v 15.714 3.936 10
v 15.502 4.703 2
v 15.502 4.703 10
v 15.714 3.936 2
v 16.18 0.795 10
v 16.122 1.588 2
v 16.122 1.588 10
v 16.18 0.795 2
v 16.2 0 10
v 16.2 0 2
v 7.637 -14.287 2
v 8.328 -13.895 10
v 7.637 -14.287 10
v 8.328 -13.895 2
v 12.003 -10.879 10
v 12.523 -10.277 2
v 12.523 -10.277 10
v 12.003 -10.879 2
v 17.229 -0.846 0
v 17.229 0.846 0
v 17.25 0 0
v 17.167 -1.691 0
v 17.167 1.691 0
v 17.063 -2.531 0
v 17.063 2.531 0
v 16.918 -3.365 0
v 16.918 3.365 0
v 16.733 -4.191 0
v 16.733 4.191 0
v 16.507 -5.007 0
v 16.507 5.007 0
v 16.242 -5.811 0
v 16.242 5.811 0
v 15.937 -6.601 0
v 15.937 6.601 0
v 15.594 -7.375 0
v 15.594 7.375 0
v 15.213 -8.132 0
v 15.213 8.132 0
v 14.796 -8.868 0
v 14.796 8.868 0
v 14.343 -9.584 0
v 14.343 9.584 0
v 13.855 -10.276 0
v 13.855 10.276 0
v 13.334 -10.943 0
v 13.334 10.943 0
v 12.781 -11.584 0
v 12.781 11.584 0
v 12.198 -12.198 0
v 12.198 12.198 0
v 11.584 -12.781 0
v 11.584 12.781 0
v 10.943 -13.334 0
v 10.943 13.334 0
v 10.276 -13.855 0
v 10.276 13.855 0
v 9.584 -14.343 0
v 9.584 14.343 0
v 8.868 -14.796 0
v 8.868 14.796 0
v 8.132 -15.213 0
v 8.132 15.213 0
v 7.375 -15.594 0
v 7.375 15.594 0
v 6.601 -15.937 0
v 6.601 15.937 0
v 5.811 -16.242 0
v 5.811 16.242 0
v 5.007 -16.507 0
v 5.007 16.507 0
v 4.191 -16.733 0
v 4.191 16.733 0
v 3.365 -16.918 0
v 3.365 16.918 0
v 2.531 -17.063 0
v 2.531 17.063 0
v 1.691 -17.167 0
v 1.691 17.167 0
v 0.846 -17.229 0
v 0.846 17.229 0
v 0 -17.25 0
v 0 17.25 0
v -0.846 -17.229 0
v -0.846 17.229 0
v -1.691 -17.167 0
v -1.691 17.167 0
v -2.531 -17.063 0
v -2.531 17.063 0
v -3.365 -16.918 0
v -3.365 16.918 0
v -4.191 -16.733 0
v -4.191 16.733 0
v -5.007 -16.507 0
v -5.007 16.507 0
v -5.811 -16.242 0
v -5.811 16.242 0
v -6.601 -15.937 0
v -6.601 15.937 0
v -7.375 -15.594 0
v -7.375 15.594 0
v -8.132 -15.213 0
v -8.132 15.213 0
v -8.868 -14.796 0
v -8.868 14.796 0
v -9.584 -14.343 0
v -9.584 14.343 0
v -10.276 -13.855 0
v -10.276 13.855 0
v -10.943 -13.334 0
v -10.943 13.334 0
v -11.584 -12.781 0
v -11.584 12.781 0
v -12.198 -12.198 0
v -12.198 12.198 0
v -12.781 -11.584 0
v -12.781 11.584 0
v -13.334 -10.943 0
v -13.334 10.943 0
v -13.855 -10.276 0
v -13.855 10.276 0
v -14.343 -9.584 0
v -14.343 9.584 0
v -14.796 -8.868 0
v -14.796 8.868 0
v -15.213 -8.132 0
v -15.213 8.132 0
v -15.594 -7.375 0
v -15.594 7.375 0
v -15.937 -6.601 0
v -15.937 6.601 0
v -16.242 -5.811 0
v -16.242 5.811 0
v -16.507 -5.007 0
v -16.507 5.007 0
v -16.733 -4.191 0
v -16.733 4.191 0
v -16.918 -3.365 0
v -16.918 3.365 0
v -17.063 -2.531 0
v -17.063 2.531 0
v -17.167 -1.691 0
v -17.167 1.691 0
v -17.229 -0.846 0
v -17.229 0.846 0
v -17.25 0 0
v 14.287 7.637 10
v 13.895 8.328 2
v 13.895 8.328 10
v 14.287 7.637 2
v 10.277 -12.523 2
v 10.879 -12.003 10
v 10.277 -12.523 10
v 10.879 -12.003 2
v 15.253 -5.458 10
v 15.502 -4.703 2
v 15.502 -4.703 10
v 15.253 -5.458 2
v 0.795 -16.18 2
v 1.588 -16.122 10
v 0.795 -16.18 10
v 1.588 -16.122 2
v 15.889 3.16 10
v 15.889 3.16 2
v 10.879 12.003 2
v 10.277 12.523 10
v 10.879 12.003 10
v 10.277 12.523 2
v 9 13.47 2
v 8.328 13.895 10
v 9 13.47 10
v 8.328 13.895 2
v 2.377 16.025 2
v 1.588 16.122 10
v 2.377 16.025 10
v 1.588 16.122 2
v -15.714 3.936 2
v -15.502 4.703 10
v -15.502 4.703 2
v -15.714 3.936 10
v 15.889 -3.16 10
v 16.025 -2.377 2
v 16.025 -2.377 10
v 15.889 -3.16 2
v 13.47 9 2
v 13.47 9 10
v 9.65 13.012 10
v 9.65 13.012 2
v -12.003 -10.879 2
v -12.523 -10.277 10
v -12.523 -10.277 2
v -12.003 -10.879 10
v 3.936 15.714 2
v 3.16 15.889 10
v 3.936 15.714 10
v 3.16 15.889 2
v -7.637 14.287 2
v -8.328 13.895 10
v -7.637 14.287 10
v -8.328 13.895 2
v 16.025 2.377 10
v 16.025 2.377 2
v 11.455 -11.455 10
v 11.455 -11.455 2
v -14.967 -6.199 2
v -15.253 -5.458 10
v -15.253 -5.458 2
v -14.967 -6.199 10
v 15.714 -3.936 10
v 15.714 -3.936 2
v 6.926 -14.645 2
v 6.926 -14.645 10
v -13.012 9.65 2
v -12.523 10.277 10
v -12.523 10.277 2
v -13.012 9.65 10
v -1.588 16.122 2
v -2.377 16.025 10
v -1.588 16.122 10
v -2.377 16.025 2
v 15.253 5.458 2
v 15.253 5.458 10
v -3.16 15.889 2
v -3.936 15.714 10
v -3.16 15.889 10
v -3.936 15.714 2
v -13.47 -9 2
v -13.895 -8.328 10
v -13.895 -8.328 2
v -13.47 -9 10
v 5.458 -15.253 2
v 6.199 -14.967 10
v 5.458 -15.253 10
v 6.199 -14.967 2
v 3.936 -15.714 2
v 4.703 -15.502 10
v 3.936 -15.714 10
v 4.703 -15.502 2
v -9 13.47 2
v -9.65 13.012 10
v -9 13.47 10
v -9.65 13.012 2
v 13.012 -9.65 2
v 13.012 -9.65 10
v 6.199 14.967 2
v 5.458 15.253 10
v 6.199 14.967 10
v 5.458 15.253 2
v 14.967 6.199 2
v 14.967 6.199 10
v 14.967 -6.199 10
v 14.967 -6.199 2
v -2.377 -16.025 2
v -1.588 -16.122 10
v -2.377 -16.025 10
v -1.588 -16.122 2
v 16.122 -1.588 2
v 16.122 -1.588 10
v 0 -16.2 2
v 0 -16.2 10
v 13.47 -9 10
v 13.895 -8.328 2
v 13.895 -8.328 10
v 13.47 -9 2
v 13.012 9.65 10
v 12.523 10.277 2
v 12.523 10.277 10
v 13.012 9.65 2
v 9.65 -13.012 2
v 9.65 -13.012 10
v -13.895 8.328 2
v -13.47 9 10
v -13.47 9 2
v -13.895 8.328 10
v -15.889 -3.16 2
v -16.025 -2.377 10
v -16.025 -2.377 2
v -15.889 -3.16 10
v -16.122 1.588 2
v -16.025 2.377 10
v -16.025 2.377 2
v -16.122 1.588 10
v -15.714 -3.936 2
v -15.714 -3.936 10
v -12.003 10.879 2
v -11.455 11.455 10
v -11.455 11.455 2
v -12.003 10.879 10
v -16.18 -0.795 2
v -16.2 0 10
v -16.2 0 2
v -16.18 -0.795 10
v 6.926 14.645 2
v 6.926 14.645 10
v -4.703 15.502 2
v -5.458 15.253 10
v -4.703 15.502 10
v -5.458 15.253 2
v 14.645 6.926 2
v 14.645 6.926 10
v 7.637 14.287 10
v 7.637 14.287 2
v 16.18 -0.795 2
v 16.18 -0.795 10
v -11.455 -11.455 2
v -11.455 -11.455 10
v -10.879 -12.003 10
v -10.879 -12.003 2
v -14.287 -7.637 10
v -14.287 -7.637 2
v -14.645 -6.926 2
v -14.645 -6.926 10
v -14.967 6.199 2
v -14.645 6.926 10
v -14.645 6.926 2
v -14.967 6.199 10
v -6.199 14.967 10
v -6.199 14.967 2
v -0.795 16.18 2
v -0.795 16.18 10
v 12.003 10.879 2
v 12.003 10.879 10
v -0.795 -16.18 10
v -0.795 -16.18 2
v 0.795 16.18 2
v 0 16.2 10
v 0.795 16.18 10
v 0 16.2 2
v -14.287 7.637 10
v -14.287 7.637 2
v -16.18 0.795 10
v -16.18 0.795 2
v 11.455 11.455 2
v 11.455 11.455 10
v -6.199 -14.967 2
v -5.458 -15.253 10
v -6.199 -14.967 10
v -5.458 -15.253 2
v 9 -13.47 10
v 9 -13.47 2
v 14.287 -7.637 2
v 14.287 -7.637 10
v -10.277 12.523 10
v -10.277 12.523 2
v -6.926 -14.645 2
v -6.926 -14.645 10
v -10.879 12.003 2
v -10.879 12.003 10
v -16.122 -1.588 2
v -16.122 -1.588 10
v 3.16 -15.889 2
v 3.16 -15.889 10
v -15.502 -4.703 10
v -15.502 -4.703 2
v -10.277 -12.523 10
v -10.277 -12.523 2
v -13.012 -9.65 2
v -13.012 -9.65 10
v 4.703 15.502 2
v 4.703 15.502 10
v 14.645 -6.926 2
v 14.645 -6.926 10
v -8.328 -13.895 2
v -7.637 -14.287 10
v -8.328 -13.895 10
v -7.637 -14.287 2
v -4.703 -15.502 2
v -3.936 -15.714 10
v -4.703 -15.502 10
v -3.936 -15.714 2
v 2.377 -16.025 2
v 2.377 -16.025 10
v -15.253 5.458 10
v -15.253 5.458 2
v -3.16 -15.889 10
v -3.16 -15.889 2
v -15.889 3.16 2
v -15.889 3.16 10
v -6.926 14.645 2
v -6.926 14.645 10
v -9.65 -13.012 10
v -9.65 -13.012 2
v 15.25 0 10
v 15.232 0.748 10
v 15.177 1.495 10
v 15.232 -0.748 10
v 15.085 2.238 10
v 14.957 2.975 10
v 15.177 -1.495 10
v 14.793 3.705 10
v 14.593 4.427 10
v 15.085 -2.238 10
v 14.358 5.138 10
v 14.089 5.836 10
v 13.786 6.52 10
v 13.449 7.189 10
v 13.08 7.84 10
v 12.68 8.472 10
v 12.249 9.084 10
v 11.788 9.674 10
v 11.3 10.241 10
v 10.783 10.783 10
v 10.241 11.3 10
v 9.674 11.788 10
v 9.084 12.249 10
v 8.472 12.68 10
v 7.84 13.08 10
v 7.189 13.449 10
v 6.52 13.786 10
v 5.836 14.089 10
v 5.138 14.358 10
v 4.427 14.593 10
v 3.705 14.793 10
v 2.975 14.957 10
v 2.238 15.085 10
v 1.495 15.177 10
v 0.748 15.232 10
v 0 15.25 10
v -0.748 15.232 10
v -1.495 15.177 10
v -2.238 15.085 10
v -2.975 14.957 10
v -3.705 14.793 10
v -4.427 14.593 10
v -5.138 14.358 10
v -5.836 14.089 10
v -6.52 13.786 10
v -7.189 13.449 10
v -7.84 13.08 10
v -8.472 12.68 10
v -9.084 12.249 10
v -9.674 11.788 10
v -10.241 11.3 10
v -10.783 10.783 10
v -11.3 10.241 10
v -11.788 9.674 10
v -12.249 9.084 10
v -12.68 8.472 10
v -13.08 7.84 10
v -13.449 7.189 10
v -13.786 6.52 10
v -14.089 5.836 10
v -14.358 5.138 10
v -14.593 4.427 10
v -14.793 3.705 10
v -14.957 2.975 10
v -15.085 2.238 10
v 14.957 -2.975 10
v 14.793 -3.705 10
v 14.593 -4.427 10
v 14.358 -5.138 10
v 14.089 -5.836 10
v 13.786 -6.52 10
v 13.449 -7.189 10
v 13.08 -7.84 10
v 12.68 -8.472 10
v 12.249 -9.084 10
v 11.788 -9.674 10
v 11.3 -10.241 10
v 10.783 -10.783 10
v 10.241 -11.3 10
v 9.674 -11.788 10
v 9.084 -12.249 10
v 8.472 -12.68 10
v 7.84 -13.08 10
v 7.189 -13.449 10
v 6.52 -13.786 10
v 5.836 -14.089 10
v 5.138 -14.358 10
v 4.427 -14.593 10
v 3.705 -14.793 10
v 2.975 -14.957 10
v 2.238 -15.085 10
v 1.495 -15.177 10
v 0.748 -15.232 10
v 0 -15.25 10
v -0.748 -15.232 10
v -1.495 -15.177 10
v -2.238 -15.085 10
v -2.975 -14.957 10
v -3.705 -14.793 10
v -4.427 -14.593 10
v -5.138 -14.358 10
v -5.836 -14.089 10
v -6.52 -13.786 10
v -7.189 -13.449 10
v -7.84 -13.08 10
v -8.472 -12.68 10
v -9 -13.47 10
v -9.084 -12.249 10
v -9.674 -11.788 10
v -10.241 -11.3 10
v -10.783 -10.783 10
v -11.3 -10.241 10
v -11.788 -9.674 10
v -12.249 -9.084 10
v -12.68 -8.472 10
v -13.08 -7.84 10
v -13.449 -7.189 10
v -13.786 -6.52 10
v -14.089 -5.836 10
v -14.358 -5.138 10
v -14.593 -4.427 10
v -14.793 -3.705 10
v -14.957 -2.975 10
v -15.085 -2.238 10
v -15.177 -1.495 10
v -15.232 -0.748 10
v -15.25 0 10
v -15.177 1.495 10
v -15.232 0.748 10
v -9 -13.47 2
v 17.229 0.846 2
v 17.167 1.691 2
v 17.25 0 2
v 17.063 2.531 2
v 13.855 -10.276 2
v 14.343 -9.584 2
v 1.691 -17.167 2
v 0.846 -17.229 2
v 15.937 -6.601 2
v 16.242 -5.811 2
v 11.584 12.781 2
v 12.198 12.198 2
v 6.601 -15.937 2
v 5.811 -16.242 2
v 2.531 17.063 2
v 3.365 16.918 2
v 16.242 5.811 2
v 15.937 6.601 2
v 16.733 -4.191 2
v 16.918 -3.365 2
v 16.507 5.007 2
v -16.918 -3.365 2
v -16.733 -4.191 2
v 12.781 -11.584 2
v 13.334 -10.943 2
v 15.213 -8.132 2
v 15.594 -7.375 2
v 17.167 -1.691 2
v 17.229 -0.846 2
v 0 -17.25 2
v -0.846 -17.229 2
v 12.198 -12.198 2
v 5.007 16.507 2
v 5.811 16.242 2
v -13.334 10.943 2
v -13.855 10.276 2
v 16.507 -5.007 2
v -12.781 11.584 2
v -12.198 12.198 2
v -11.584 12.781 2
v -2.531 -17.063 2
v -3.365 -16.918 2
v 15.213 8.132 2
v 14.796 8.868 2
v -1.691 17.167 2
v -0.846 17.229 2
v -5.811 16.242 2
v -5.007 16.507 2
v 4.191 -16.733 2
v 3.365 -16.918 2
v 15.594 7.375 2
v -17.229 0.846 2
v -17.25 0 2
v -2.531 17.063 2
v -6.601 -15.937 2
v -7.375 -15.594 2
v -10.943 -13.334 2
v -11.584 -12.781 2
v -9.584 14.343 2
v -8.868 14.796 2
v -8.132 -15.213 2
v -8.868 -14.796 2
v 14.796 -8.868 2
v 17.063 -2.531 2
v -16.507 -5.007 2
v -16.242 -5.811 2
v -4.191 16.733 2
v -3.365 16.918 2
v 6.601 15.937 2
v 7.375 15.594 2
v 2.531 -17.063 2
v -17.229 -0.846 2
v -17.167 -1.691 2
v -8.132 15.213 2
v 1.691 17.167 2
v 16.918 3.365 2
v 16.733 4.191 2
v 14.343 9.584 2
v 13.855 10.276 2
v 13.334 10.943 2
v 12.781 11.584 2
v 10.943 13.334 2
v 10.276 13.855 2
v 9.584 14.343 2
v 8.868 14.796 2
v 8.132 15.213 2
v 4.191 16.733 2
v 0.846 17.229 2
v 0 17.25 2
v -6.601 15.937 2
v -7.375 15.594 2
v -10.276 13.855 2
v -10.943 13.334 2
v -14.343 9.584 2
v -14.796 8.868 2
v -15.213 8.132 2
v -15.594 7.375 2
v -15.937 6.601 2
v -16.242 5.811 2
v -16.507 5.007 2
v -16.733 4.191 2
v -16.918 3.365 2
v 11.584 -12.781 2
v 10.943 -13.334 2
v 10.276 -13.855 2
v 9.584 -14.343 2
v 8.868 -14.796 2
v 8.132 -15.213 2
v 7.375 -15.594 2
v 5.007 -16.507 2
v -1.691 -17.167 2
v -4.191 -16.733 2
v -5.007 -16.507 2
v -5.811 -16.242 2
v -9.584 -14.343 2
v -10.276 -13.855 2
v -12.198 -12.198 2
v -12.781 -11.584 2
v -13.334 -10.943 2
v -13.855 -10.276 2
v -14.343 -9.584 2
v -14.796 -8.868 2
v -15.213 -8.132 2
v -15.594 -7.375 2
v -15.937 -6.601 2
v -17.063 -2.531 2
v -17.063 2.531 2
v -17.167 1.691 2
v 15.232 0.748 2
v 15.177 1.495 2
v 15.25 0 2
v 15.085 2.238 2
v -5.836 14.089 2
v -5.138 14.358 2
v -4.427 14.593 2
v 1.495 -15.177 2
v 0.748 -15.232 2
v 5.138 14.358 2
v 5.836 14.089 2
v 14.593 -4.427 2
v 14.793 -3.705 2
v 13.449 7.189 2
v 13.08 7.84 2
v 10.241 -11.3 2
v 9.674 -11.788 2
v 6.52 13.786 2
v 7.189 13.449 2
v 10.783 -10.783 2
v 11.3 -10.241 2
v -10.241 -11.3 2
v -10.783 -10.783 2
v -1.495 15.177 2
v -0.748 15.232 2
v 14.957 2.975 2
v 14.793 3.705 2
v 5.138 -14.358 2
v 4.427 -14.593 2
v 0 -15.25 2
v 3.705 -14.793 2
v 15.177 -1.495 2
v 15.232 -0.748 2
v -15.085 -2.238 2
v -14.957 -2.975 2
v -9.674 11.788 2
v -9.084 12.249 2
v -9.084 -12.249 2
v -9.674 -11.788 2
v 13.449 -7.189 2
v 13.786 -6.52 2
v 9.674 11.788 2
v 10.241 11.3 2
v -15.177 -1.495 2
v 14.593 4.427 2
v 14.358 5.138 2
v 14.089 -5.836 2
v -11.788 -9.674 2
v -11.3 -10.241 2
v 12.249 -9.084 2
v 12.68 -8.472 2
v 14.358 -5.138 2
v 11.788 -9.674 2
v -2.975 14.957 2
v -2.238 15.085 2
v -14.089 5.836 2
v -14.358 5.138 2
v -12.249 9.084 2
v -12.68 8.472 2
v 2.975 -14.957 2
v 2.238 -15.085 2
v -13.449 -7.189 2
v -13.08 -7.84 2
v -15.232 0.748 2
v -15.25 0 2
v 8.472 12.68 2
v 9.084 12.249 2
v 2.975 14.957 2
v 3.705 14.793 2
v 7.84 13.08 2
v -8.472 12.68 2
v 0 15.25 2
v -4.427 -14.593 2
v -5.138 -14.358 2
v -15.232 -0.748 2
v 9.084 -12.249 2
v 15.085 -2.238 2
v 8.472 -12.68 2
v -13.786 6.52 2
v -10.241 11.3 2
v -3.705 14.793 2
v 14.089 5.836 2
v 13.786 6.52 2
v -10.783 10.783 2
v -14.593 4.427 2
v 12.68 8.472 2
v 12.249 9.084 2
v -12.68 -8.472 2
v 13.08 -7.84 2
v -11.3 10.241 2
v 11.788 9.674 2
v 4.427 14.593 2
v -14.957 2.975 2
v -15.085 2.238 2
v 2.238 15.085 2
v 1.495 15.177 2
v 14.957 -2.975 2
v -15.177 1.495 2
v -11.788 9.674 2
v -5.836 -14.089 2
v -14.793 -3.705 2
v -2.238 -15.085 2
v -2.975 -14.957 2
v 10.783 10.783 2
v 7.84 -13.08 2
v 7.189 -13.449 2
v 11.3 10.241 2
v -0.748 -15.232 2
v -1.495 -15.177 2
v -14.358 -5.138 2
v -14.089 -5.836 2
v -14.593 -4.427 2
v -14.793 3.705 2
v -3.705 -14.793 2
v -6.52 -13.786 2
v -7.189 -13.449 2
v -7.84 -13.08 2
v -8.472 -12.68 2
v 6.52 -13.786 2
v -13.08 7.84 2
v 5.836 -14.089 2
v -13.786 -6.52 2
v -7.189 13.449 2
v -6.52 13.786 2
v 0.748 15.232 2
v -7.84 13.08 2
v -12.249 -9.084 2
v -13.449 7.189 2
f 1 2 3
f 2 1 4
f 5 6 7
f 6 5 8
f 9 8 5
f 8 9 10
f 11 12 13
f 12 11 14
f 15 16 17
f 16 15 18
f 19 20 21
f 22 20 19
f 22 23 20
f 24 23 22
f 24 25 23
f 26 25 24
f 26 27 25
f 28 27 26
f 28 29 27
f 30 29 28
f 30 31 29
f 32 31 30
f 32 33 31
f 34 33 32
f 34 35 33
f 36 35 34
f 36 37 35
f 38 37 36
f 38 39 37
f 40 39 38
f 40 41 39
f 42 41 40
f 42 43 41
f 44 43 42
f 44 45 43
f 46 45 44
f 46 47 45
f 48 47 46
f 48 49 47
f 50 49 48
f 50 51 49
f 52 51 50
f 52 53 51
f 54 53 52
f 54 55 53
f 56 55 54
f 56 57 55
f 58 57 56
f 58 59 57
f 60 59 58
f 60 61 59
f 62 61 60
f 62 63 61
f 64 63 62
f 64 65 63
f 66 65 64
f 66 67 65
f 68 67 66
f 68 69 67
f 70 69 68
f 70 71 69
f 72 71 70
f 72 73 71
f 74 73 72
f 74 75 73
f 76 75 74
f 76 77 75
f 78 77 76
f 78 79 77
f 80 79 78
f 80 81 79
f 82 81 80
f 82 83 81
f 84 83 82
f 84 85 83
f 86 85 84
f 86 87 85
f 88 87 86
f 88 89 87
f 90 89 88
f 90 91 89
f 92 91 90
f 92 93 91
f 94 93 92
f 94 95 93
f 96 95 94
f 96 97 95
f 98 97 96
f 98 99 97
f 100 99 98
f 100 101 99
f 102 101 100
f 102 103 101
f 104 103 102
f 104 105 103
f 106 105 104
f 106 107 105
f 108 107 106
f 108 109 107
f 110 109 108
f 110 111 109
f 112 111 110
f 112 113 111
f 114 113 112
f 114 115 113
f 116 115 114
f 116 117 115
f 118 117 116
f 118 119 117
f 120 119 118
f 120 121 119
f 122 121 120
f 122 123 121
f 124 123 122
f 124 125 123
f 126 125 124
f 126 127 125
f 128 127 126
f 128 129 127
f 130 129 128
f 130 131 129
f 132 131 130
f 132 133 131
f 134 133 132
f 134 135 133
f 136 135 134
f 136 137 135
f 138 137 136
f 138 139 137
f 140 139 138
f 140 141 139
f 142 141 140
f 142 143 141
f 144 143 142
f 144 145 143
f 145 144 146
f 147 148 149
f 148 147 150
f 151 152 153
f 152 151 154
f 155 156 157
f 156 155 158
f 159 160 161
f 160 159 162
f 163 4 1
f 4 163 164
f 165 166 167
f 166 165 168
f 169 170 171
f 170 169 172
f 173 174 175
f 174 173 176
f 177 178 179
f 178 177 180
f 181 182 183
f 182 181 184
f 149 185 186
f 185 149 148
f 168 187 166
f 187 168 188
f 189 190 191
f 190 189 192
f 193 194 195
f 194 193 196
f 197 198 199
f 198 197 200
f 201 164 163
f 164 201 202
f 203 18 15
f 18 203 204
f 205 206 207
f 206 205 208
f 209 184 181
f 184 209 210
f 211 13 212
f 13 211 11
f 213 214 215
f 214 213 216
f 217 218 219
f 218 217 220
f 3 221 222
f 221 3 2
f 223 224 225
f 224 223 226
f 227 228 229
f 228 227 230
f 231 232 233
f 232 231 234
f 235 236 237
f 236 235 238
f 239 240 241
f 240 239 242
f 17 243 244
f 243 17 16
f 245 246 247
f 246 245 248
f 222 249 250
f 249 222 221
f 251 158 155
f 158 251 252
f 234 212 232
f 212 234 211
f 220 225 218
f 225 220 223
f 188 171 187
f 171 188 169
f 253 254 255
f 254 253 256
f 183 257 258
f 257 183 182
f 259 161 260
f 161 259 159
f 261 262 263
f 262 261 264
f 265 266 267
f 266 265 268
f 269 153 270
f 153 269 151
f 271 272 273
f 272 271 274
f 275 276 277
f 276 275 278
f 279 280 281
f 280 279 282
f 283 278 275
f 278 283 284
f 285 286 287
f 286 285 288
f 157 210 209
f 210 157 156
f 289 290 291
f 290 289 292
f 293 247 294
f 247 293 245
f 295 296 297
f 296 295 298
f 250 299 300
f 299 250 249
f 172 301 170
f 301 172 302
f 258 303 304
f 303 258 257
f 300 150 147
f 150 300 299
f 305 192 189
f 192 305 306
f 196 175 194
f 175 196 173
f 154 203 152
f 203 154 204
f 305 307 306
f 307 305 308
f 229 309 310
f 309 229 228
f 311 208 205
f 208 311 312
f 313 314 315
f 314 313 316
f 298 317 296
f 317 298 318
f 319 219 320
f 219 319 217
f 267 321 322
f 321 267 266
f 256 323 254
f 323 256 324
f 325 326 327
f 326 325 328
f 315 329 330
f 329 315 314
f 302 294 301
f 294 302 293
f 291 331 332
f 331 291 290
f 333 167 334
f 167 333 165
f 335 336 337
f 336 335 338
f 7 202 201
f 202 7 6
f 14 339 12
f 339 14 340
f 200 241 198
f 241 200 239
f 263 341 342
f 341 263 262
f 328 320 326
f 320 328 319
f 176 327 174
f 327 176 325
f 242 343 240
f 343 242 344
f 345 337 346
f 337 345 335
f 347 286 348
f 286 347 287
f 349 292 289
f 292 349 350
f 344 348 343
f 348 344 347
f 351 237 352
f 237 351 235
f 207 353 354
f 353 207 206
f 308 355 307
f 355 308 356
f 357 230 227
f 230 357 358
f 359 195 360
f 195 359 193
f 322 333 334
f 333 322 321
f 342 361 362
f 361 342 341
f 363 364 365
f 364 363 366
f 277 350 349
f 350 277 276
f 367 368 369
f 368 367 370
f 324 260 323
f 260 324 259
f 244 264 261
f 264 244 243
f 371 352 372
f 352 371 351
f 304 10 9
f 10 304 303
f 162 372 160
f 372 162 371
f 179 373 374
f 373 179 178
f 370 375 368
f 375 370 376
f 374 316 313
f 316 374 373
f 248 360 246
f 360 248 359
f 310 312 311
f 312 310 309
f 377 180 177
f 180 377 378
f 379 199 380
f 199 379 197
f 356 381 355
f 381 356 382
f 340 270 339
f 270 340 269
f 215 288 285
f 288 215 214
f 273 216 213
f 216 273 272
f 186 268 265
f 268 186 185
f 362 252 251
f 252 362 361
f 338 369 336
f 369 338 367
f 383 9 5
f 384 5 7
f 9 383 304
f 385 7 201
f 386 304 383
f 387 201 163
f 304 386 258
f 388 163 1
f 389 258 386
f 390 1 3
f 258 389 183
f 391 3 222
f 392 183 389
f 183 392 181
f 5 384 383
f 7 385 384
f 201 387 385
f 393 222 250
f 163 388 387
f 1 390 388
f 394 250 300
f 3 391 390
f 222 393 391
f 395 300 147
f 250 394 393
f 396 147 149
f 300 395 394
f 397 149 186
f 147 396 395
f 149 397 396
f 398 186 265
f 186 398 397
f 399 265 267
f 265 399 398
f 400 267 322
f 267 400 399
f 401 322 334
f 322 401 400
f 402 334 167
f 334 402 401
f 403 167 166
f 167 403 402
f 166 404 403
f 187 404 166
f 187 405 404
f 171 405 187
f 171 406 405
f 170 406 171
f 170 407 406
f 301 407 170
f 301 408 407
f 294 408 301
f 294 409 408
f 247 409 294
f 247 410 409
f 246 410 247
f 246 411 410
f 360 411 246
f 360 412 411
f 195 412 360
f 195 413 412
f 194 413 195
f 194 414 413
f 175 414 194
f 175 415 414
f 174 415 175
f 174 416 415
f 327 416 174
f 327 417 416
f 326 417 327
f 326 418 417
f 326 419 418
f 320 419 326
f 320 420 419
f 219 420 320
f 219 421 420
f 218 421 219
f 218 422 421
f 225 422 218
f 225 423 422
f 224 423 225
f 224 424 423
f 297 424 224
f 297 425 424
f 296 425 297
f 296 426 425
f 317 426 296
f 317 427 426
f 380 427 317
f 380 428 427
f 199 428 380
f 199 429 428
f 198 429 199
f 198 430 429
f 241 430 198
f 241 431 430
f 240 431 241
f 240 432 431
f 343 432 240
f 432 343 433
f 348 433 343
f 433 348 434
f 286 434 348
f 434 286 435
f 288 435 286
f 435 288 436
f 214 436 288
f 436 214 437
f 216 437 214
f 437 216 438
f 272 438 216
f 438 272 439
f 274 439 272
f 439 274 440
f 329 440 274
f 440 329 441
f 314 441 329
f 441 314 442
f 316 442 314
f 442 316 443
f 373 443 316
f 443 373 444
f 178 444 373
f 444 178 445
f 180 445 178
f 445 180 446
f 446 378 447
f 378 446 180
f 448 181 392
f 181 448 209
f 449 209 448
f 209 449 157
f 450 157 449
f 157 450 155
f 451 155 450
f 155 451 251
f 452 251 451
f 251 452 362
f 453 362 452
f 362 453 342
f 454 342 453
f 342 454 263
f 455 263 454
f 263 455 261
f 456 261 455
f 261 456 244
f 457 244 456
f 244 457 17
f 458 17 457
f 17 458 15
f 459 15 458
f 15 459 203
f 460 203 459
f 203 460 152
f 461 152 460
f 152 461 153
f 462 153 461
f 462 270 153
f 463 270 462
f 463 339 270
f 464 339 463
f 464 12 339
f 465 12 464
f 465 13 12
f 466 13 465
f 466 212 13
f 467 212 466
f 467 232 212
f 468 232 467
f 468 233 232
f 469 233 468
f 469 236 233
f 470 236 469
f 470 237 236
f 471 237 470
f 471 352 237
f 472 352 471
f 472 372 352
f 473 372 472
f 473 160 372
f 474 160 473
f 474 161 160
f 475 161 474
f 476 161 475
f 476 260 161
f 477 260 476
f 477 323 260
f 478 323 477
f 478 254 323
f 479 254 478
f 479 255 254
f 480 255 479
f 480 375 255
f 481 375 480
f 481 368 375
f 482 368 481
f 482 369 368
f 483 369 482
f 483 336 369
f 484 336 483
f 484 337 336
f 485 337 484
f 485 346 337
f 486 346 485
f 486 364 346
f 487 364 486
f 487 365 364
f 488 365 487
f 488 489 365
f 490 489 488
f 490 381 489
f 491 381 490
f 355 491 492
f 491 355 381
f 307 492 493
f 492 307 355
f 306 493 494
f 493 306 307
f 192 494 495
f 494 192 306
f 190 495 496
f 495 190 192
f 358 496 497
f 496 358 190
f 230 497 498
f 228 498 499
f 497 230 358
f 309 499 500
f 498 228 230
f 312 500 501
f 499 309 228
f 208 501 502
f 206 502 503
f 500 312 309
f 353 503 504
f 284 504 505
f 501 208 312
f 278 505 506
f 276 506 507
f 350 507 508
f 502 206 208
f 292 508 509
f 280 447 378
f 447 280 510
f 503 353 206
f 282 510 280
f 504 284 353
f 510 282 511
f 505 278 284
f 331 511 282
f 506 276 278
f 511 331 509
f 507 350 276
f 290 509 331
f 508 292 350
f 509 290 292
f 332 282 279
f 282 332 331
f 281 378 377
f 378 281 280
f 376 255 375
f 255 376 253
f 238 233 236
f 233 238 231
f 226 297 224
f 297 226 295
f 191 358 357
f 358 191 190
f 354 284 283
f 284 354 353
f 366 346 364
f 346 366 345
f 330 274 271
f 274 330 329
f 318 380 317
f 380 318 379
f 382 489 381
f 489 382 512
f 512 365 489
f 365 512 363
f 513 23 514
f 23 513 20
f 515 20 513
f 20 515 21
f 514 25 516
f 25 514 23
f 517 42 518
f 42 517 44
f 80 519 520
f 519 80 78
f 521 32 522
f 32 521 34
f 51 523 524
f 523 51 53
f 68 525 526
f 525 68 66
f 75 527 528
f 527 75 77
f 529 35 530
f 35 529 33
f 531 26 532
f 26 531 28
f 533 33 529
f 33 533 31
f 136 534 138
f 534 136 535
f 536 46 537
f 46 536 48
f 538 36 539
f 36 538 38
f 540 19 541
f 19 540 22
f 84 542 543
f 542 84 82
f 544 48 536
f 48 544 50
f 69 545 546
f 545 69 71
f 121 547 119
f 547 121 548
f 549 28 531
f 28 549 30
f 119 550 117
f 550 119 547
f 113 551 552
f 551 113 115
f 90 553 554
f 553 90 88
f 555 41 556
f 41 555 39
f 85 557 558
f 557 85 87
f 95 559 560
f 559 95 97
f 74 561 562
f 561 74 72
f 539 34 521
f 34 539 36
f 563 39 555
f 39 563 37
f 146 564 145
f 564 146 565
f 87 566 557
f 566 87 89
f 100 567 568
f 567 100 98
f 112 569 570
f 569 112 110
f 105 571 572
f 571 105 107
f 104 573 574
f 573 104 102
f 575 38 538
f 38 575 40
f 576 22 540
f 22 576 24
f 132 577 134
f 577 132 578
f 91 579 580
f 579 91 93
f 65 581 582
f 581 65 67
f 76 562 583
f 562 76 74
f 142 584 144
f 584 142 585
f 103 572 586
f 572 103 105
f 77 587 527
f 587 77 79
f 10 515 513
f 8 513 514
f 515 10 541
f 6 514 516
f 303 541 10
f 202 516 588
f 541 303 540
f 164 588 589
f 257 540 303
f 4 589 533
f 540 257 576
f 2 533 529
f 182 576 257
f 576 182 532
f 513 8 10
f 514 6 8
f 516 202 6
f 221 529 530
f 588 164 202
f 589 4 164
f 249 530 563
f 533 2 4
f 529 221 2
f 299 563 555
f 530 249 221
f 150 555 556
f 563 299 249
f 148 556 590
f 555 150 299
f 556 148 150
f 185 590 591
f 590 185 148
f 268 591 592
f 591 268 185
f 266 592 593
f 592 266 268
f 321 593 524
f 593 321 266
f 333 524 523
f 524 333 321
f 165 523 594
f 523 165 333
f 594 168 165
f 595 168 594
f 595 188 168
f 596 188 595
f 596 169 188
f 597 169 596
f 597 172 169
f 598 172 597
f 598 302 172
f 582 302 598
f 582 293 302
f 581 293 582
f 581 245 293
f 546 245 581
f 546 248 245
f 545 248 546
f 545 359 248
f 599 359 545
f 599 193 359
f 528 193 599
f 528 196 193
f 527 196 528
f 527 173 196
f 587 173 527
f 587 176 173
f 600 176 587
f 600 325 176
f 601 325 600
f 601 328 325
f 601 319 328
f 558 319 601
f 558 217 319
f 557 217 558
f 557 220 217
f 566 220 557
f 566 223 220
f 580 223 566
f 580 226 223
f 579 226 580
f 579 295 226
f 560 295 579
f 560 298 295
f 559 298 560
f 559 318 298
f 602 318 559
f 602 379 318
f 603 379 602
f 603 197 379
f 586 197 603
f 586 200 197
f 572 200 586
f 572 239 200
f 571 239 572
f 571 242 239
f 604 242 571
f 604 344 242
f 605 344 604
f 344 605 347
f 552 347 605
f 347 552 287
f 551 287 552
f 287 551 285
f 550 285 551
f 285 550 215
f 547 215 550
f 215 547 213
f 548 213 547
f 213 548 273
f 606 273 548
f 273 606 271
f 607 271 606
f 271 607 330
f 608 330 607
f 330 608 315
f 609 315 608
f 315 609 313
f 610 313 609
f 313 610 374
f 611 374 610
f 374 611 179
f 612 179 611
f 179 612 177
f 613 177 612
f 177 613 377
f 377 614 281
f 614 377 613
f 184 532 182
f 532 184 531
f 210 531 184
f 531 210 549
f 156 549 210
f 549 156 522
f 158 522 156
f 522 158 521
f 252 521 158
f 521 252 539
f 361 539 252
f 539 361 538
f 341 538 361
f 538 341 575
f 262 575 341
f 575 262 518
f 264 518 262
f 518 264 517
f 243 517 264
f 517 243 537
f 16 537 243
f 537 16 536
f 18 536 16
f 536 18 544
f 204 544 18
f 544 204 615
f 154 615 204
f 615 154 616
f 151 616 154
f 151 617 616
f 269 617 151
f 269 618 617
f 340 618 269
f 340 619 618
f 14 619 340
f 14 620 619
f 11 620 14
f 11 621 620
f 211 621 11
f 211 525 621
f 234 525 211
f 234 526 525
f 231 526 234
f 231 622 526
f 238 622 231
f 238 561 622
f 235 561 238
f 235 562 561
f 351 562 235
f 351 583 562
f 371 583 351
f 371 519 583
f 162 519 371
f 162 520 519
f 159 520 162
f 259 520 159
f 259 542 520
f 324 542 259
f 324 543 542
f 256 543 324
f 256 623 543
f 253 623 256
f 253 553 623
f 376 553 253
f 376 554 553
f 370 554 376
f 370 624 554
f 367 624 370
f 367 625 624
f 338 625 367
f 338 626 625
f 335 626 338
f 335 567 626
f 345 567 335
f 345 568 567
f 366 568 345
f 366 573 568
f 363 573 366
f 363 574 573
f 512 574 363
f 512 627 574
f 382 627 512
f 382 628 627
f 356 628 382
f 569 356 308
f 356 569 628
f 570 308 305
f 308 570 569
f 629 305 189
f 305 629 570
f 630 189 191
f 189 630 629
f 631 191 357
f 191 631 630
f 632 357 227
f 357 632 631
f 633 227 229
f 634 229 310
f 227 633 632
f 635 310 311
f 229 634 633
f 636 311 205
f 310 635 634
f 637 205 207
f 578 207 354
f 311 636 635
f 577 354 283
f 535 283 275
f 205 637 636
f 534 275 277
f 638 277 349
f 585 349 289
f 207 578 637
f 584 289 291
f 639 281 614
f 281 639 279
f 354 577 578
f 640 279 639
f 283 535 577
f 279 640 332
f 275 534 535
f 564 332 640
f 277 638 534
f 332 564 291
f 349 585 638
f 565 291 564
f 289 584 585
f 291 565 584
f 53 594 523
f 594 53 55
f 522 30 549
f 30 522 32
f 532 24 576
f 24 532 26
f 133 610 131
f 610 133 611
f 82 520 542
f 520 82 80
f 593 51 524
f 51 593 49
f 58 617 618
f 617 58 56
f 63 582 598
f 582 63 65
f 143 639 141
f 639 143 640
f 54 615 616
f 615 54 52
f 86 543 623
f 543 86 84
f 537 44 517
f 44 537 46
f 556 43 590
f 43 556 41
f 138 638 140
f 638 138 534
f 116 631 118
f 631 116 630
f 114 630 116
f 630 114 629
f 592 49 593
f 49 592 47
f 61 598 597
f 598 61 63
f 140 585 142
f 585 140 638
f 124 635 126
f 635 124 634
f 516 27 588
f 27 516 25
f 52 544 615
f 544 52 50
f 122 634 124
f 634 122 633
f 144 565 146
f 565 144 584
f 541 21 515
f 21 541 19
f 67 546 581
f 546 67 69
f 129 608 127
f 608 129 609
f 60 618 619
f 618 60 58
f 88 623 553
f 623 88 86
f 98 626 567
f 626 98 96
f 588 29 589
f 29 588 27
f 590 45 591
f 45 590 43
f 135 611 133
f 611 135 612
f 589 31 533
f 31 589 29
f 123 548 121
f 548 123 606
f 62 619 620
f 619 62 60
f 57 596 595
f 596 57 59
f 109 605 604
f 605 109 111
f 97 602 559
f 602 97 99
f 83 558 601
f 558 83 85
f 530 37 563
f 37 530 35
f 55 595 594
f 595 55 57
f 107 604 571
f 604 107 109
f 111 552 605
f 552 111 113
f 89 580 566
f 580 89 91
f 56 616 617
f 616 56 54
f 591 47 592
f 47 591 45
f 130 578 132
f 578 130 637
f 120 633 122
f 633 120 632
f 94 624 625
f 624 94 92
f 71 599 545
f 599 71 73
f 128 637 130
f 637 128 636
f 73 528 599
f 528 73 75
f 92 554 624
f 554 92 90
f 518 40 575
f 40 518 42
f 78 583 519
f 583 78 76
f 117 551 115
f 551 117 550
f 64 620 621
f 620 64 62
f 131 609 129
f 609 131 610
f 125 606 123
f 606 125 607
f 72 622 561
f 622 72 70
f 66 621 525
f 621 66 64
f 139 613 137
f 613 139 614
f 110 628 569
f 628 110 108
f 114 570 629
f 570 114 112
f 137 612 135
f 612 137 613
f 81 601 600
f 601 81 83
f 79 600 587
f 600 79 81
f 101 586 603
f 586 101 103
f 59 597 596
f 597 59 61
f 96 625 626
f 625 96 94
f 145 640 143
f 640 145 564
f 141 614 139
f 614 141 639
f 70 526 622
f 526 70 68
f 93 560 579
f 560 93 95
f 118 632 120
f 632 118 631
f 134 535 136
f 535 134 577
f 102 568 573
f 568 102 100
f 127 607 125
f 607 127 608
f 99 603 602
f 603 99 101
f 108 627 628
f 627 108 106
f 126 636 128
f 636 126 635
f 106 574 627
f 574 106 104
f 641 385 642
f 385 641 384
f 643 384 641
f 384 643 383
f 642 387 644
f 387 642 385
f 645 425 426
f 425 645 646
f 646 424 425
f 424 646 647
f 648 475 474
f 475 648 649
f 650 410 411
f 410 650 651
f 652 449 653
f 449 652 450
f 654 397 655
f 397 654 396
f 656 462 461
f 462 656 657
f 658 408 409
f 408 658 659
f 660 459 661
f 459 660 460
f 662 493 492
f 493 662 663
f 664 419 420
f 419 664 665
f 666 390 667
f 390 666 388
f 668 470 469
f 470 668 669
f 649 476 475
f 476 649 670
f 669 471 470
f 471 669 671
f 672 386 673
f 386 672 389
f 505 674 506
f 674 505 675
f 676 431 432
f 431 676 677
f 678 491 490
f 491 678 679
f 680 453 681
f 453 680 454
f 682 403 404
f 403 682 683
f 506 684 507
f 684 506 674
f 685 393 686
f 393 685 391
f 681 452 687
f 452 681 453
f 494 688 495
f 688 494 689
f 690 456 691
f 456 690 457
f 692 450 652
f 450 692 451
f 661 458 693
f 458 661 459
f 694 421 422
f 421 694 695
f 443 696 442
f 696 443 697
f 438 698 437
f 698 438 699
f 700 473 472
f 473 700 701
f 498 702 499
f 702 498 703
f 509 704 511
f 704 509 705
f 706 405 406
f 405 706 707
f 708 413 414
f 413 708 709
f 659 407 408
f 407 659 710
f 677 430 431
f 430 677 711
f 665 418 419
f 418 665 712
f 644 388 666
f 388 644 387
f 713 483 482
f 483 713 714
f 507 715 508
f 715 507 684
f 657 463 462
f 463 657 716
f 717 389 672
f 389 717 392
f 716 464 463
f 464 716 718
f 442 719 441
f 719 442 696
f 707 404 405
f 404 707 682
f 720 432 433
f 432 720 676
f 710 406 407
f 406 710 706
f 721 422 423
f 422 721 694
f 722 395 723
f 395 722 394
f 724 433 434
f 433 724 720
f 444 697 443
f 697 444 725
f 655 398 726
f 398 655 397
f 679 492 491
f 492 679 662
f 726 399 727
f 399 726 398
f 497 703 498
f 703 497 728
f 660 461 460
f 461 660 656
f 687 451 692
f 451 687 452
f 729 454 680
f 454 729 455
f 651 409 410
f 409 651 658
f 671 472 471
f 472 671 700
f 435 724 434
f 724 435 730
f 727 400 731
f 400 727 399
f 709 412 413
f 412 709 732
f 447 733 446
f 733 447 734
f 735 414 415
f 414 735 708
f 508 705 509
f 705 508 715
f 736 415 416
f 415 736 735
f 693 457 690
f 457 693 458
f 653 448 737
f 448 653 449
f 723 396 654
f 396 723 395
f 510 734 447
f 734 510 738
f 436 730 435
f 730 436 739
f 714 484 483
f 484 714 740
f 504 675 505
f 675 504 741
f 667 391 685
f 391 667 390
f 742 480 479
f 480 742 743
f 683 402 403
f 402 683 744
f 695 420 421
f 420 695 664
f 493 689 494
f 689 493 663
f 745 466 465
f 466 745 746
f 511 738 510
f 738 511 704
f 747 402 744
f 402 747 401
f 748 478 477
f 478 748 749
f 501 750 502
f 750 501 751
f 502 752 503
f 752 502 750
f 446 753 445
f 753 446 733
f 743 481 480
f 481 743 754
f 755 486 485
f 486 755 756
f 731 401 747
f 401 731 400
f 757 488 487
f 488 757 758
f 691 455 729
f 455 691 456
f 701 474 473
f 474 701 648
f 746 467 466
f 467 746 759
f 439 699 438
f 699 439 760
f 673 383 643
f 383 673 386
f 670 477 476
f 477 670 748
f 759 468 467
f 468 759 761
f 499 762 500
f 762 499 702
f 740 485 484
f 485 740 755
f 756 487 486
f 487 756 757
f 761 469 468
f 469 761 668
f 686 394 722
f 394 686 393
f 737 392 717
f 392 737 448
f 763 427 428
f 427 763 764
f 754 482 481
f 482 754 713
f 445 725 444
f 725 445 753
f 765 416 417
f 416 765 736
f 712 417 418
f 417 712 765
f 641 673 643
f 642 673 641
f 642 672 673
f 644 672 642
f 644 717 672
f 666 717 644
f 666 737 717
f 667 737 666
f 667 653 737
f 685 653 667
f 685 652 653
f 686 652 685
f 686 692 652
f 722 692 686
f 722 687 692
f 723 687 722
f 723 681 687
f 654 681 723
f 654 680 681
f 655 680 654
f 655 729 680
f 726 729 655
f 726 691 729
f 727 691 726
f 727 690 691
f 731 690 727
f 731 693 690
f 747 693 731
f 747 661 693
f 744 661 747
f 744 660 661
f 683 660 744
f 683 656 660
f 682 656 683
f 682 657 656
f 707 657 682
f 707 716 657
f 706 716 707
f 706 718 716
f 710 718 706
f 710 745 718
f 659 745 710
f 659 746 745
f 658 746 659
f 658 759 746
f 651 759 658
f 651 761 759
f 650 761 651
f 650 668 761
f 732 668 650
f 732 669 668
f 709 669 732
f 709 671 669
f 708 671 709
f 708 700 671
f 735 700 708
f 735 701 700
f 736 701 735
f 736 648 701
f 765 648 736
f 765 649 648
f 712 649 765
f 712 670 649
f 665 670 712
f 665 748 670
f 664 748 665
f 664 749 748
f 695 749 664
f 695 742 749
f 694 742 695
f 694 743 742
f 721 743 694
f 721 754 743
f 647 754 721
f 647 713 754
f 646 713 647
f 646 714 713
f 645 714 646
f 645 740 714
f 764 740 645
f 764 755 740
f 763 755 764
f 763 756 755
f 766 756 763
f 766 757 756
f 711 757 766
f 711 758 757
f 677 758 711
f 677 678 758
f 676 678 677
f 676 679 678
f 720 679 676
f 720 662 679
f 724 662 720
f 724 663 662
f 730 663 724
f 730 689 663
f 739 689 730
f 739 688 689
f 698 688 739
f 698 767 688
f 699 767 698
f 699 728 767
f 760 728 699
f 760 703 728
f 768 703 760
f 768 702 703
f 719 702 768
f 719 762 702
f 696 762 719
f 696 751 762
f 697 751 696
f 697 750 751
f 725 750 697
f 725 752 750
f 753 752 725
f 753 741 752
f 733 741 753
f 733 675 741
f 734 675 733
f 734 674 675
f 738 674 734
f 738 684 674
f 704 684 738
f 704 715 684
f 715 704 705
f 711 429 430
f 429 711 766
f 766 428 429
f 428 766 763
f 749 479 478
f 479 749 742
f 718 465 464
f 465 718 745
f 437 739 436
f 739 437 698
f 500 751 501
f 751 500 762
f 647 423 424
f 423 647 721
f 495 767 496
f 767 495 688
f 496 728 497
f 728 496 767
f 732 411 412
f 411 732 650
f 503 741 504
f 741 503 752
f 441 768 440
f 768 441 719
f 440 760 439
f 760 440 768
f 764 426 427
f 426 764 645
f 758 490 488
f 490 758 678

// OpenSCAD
// file: mixin.scad
wall = 2;
overcut = 0.1;
battery_slot_diameter = 32.5;
diameter = 71.5;
display_length = 77;
display_pcb_width = 19.2;
display_slot_width = 21;
display_slot_length = 67;
display_window_length = 56;
display_window_width = 17.4;
esp32c3_width = 18.5;
esp32c3_length = 24;

module rail_side(half_width, length, y, rail_height=9) {
  translate([-half_width - 2, y, 2]) cube([2, length, rail_height]);
  hull() {
    translate([-half_width - 0.15, y, 2 + rail_height - 3.5]) rotate([0, -40, 0]) cube([1.5, length, 1]);
    translate([-half_width - 0.5, y, 2 + rail_height - 2.6]) cube([1.5, length, 1]);
  }
  translate([-half_width - 0.35, y, 2 + rail_height - 1.0]) rotate([0, -40, 0]) cube([1.3, length, 1]);
}

module rail(half_width, length, y, rail_height=9) {
  rail_side(half_width, length, y, rail_height);
  mirror([1, 0, 0]) rail_side(half_width, length, y, rail_height);
}

module esp32c3_mini_rails() {
  rail(esp32c3_width / 2, esp32c3_length - 8, 19);
}

module tp4057_rails() {
  rail(13 / 2, 14, -36, 13);
}

module button_cutout() {
  size = 14.1;
  translate([-size / 2, -24.5, -2.5]) cube(size=size);
}

module display_slot_cutout() {
  translate([-display_slot_length / 2, (display_pcb_width - display_slot_width) / 2, 0.4]) cube([display_slot_length, display_slot_width, 100]);
}

module display_window_cutout(clearance = 0) {
  width = display_window_width + clearance;
  translate([-display_window_length / 2, (display_pcb_width - width) / 2, -0.1])
      cube([display_window_length, width, 100]);
}

module display() {
  difference() {
    hull() {
      length = display_length + wall * 2 + 0.5;
      width = display_pcb_width + wall * 2 + 0.5;
      translate([-length / 2, 0, 0]) cube(size=[length, width, height]);

      cylinder(h=height, d=diameter + wall * 2, $fn=256);
    }

    hull() {
      length = display_length + 0.5;
      width = display_pcb_width + 3.5;
      translate([-length / 2, 0, wall]) cube(size=[length, width, height + wall]);

      translate([0, 0, wall]) cylinder(h=height, d=diameter + 0.3, $fn=256);
    }
  }
}

module type_c_cutout() {
  translate([0, diameter / 2 + 4, 8.5]) rotate([90, 0, 0])
      hull() {
        translate([-2.9, 0, 0]) cylinder(h=10, d=3.7, $fn=64);
        translate([2.9, 0, 0]) cylinder(h=10, d=3.7, $fn=64);
      }
}

module leg(leg_height) {
  difference() {
    cylinder(h=leg_height, d=6.24, $fn=32);
    cylinder(h=leg_height + 1, d=3.06, $fn=32);
  }
}
// main file
include <mixin.scad>;

battery_cap_height = 8;

difference() {
  union() {
    translate([0, 0, 0]) cylinder(h=battery_cap_height + wall, d=battery_slot_diameter - 0.1, center=false, $fn=128);
    translate([0, 0, 0]) cylinder(h=wall, d=battery_slot_diameter + 2, center=false, $fn=128);
  }

  translate([0, 0, wall]) cylinder(h=100, d=battery_slot_diameter - 2, center=false, $fn=128);
}
